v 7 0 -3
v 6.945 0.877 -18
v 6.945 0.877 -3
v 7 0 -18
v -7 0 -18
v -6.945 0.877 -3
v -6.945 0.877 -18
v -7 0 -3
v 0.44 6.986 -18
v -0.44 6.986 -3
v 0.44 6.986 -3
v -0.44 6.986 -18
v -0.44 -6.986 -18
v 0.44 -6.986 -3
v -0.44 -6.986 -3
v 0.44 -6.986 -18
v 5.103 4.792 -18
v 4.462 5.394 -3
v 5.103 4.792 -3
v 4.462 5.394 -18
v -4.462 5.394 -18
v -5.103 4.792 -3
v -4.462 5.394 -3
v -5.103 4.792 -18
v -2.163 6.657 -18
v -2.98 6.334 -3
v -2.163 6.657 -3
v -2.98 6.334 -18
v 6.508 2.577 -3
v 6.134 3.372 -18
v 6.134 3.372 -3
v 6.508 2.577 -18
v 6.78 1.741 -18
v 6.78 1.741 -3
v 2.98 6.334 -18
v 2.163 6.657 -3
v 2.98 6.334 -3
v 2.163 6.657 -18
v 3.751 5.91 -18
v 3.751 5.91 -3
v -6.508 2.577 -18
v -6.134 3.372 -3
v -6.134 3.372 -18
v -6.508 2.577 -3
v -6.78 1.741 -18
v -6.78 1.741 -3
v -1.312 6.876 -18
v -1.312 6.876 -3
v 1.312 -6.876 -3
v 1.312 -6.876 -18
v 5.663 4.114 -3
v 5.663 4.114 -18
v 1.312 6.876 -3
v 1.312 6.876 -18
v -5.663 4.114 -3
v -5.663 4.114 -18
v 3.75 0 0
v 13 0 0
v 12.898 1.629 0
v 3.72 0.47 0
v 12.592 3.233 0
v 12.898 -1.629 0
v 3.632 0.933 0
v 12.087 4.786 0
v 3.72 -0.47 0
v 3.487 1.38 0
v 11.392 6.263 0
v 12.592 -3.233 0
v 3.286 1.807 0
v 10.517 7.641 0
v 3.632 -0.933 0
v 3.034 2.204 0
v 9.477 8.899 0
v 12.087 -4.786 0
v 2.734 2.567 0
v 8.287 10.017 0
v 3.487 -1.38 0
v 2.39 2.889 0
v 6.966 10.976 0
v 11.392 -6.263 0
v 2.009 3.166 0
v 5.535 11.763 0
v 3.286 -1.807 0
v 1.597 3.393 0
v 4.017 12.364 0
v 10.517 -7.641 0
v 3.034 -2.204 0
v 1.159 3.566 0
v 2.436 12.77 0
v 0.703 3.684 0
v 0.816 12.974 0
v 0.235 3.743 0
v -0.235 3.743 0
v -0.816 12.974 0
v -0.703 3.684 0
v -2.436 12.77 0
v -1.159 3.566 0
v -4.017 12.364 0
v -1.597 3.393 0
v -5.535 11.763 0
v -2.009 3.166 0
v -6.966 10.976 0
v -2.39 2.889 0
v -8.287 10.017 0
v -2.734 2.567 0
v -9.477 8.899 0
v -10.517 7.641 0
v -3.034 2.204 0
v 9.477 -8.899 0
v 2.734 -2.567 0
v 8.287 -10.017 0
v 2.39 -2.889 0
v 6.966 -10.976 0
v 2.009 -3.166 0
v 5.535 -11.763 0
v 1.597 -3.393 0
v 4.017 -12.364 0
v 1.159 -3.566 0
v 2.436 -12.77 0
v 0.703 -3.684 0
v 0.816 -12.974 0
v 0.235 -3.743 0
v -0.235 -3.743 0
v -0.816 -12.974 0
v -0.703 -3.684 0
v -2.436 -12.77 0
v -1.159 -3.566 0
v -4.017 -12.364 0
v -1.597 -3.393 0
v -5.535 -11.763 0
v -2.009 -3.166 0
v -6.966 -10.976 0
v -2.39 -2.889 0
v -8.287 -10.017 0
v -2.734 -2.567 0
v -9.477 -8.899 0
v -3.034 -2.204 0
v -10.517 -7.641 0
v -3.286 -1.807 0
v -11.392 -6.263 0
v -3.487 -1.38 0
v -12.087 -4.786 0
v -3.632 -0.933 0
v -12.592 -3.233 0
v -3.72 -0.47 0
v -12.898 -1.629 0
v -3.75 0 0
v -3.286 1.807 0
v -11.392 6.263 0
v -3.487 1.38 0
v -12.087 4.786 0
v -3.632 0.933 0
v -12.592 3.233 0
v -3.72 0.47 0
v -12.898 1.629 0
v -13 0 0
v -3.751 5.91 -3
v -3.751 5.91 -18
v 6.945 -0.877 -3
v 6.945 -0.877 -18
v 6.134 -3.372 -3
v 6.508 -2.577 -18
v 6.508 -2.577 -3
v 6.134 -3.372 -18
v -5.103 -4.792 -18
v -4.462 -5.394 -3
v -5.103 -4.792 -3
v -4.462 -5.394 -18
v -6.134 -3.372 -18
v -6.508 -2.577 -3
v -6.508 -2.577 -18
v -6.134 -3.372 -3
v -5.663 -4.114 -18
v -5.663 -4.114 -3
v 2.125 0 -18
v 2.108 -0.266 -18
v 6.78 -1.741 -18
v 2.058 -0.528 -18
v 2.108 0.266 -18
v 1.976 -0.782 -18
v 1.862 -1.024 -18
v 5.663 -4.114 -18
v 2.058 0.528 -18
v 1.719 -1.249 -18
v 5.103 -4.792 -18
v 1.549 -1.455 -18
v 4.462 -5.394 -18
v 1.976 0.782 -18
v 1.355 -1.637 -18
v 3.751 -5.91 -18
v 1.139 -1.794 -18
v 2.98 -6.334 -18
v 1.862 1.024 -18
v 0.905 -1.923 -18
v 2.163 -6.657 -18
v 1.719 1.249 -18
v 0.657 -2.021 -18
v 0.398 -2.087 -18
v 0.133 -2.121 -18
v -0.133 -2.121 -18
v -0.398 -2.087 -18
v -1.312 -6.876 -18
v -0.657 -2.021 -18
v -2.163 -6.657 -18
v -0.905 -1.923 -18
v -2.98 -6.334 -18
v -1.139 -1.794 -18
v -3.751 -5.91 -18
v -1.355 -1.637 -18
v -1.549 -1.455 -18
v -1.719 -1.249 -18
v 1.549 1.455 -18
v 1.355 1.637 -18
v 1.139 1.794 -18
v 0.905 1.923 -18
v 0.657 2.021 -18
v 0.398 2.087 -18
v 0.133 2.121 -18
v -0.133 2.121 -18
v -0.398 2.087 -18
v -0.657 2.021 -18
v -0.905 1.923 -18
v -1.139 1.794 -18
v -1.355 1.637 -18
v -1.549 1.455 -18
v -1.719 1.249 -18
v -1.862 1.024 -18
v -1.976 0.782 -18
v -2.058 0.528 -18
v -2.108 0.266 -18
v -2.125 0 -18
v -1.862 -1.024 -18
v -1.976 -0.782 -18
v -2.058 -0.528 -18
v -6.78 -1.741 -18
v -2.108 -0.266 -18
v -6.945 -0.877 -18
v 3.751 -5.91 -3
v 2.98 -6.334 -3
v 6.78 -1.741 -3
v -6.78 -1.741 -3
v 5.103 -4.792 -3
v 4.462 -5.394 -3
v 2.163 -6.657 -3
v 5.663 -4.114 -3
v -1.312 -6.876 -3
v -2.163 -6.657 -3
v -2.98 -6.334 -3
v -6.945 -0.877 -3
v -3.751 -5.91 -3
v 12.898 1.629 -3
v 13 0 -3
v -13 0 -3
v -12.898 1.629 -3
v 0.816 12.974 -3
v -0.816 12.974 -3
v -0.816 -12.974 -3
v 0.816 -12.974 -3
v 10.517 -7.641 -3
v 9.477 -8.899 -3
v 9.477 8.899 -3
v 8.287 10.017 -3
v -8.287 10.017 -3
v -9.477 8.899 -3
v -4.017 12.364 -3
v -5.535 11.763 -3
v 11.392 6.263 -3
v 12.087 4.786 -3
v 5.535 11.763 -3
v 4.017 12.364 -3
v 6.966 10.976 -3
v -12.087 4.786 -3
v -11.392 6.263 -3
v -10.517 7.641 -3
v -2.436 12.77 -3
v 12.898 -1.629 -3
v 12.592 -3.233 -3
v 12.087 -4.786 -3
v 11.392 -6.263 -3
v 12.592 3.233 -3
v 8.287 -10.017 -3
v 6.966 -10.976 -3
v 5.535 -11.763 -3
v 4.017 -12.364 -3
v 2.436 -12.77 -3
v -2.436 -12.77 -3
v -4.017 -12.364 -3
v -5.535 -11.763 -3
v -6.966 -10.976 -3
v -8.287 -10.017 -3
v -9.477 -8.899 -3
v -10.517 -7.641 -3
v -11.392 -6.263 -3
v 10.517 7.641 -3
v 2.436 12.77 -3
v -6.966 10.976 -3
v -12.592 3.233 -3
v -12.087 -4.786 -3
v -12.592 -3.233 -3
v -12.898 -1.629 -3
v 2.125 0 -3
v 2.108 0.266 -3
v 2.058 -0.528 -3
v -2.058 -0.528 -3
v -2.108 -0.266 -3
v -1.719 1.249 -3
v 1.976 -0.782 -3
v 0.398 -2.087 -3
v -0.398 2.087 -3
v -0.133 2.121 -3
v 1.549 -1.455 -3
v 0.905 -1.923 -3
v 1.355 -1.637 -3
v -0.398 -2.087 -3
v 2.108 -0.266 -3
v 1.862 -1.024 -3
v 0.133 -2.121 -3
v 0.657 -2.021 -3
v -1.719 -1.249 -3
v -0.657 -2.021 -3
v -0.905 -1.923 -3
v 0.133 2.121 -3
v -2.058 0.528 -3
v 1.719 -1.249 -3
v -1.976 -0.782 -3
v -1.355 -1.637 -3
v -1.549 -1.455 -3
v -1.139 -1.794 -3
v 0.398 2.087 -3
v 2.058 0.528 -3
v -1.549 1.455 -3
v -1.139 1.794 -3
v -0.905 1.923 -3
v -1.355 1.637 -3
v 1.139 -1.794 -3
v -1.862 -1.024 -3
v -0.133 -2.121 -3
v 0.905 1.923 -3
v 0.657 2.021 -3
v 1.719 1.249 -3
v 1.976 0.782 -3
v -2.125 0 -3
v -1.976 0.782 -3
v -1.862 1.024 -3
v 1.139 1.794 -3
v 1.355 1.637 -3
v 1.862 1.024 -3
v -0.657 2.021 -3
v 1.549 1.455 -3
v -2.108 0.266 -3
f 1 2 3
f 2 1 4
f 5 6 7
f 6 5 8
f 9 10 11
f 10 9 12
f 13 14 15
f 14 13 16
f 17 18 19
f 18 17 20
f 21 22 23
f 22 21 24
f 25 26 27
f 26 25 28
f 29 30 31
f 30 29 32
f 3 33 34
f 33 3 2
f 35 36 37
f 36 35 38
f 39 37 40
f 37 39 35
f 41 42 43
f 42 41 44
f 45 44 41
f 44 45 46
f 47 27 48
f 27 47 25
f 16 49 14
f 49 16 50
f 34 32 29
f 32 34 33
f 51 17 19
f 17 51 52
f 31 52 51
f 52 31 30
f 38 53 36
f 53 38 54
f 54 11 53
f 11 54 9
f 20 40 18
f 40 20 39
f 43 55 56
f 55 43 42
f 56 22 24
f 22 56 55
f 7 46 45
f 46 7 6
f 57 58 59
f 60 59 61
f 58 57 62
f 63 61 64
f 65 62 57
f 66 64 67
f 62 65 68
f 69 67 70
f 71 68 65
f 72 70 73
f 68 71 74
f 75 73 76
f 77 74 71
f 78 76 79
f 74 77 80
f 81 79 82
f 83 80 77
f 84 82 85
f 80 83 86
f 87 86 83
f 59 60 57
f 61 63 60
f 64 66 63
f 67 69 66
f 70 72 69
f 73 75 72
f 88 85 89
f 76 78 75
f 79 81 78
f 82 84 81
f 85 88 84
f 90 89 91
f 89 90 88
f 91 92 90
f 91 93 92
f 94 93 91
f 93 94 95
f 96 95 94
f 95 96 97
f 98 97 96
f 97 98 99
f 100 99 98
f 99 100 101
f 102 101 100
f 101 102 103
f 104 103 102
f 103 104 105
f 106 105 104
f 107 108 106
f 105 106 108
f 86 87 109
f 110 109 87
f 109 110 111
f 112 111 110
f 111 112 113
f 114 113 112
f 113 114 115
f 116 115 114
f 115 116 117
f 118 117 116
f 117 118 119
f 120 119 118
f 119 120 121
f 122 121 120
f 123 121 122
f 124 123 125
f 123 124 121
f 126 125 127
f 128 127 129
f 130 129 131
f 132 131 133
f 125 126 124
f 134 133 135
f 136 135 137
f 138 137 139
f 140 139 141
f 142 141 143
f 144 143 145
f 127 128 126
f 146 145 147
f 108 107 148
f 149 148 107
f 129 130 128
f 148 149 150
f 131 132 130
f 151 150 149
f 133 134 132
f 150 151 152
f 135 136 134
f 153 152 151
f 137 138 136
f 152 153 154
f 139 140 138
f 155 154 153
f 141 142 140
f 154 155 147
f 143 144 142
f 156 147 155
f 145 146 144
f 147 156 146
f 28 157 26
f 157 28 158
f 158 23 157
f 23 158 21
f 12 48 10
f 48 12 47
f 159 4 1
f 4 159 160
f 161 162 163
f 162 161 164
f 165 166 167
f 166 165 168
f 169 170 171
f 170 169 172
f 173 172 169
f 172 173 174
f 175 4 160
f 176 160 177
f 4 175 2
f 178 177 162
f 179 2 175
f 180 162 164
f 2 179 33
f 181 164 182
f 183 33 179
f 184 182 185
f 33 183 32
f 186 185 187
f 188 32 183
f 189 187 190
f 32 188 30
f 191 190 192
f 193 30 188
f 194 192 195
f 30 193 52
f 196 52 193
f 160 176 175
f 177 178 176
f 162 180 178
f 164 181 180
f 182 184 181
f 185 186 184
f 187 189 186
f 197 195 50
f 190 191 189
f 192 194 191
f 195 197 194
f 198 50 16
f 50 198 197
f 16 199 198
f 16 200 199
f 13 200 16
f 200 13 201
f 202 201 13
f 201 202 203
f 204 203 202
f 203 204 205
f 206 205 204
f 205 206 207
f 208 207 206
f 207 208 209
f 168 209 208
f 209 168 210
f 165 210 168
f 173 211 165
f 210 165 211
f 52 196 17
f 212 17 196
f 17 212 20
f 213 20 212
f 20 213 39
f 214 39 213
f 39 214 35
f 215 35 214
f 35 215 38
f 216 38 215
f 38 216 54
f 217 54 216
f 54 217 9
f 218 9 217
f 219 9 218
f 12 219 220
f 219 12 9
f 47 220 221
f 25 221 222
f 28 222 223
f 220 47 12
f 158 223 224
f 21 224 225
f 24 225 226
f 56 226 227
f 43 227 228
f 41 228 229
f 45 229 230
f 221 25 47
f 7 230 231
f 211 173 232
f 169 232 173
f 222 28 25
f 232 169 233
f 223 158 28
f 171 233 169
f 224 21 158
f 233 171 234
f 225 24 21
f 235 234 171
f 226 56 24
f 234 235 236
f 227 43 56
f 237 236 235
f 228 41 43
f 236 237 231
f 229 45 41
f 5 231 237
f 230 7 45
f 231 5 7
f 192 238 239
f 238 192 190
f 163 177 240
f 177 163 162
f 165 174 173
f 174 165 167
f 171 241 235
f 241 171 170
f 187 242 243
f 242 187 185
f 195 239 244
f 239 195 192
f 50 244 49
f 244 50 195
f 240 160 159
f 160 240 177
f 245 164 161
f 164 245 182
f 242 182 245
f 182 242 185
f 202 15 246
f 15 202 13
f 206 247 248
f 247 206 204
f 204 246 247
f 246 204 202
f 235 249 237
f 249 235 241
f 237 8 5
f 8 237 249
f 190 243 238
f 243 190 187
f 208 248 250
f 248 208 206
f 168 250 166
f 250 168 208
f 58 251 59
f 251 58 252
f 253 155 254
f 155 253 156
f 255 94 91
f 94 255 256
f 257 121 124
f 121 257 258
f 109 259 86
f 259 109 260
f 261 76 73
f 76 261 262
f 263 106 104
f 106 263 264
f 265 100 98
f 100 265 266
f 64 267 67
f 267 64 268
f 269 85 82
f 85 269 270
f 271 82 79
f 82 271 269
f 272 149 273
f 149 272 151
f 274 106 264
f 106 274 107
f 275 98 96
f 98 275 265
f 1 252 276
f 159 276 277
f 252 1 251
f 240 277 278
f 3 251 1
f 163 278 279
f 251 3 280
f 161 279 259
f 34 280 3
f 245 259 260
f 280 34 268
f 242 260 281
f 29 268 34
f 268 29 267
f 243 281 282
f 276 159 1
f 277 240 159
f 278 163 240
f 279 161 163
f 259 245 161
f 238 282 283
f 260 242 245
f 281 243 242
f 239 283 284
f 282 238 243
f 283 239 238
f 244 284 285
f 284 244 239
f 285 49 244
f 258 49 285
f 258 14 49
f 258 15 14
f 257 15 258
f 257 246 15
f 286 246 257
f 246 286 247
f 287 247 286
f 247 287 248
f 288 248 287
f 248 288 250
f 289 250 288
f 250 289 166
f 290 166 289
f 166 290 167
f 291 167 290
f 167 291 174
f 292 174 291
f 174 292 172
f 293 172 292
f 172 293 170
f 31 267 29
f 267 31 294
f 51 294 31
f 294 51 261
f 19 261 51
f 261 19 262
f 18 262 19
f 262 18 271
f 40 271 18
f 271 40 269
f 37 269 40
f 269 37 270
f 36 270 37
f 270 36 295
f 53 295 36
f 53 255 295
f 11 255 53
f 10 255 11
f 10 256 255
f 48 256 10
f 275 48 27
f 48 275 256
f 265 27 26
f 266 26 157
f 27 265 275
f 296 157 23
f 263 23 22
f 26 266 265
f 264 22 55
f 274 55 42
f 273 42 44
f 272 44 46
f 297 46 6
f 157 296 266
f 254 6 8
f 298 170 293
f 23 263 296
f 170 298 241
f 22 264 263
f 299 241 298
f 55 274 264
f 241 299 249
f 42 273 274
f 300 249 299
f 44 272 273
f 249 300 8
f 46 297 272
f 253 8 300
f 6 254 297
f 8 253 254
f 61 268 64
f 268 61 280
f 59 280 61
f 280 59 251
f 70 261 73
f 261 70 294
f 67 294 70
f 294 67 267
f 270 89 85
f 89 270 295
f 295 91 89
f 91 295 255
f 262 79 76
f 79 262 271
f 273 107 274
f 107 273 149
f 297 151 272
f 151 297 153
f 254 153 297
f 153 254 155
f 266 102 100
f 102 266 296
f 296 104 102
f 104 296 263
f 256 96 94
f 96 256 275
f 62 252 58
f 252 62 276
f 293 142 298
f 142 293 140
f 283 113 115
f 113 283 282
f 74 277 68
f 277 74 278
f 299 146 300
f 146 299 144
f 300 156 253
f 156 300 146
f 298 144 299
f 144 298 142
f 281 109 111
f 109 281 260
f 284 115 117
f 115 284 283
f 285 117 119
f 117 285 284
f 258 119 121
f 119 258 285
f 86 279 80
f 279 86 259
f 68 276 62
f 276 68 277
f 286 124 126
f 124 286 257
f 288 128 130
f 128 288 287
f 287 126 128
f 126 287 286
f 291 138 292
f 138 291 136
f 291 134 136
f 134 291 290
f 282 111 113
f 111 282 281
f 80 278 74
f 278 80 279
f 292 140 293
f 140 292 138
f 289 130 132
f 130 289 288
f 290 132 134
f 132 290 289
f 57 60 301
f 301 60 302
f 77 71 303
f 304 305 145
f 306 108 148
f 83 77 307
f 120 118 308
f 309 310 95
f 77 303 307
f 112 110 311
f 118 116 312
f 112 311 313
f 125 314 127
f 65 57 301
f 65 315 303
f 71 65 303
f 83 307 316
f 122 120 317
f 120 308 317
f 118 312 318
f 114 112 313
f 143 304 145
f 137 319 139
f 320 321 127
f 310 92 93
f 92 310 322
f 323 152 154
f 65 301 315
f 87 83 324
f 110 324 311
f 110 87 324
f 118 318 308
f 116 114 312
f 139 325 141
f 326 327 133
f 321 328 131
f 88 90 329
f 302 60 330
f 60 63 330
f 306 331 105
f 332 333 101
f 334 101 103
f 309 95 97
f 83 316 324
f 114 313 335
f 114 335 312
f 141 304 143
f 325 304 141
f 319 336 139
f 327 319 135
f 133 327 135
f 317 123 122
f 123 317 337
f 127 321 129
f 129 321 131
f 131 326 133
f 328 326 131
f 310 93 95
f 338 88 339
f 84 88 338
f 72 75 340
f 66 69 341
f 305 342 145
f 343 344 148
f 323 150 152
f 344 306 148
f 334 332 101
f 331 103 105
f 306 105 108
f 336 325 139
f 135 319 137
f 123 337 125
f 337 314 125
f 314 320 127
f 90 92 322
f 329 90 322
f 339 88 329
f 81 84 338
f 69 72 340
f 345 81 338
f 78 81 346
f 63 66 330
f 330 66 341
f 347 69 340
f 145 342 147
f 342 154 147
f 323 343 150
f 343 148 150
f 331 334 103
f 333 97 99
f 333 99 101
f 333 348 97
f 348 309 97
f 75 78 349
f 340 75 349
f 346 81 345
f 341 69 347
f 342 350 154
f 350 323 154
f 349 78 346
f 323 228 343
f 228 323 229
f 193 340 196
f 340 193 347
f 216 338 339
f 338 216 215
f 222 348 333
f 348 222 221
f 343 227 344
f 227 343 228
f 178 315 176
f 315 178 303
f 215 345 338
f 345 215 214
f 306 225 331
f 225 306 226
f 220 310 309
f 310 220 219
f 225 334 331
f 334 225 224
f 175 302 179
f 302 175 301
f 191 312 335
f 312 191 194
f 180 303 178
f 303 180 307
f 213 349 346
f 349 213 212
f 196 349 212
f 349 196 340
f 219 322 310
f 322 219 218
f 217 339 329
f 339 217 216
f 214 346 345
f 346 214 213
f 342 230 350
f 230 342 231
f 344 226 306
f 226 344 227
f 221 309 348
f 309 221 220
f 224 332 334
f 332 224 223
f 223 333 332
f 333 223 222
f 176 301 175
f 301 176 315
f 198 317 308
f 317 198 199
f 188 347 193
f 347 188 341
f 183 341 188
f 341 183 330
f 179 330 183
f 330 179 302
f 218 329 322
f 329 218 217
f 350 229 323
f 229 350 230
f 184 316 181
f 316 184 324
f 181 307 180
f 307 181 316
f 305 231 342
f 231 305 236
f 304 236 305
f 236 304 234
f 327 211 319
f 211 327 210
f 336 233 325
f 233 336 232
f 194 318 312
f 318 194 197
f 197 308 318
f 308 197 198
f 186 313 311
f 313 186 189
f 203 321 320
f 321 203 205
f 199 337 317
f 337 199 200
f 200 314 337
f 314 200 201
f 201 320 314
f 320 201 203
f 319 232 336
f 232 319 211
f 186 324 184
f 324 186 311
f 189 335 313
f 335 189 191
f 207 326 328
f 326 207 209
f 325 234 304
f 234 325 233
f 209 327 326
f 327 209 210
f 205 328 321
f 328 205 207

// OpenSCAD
$fn = 50;


difference() {
	union() {
		translate(v = [0, 0, -18.0000000000]) {
			cylinder(h = 18, r = 7.0000000000);
		}
		translate(v = [0, 0, -3.0000000000]) {
			cylinder(h = 3, r = 13.0000000000);
		}
	}
	union() {
		translate(v = [0, 0, 0]) {
			rotate(a = [0, 0, 0]) {
				difference() {
					union() {
						#translate(v = [0, 0, -18.0000000000]) {
							cylinder(h = 18, r = 2.0000000000);
						}
						#translate(v = [0, 0, -3]) {
							cylinder(h = 3, r = 7.0000000000, r1 = 2.1250000000, r2 = 3.7500000000);
						}
						#translate(v = [0, 0, -18.0000000000]) {
							cylinder(h = 18, r = 2.1250000000);
						}
						#translate(v = [0, 0, -18.0000000000]) {
							cylinder(h = 18, r = 2.0000000000);
						}
					}
					union();
				}
			}
		}
	}
}
